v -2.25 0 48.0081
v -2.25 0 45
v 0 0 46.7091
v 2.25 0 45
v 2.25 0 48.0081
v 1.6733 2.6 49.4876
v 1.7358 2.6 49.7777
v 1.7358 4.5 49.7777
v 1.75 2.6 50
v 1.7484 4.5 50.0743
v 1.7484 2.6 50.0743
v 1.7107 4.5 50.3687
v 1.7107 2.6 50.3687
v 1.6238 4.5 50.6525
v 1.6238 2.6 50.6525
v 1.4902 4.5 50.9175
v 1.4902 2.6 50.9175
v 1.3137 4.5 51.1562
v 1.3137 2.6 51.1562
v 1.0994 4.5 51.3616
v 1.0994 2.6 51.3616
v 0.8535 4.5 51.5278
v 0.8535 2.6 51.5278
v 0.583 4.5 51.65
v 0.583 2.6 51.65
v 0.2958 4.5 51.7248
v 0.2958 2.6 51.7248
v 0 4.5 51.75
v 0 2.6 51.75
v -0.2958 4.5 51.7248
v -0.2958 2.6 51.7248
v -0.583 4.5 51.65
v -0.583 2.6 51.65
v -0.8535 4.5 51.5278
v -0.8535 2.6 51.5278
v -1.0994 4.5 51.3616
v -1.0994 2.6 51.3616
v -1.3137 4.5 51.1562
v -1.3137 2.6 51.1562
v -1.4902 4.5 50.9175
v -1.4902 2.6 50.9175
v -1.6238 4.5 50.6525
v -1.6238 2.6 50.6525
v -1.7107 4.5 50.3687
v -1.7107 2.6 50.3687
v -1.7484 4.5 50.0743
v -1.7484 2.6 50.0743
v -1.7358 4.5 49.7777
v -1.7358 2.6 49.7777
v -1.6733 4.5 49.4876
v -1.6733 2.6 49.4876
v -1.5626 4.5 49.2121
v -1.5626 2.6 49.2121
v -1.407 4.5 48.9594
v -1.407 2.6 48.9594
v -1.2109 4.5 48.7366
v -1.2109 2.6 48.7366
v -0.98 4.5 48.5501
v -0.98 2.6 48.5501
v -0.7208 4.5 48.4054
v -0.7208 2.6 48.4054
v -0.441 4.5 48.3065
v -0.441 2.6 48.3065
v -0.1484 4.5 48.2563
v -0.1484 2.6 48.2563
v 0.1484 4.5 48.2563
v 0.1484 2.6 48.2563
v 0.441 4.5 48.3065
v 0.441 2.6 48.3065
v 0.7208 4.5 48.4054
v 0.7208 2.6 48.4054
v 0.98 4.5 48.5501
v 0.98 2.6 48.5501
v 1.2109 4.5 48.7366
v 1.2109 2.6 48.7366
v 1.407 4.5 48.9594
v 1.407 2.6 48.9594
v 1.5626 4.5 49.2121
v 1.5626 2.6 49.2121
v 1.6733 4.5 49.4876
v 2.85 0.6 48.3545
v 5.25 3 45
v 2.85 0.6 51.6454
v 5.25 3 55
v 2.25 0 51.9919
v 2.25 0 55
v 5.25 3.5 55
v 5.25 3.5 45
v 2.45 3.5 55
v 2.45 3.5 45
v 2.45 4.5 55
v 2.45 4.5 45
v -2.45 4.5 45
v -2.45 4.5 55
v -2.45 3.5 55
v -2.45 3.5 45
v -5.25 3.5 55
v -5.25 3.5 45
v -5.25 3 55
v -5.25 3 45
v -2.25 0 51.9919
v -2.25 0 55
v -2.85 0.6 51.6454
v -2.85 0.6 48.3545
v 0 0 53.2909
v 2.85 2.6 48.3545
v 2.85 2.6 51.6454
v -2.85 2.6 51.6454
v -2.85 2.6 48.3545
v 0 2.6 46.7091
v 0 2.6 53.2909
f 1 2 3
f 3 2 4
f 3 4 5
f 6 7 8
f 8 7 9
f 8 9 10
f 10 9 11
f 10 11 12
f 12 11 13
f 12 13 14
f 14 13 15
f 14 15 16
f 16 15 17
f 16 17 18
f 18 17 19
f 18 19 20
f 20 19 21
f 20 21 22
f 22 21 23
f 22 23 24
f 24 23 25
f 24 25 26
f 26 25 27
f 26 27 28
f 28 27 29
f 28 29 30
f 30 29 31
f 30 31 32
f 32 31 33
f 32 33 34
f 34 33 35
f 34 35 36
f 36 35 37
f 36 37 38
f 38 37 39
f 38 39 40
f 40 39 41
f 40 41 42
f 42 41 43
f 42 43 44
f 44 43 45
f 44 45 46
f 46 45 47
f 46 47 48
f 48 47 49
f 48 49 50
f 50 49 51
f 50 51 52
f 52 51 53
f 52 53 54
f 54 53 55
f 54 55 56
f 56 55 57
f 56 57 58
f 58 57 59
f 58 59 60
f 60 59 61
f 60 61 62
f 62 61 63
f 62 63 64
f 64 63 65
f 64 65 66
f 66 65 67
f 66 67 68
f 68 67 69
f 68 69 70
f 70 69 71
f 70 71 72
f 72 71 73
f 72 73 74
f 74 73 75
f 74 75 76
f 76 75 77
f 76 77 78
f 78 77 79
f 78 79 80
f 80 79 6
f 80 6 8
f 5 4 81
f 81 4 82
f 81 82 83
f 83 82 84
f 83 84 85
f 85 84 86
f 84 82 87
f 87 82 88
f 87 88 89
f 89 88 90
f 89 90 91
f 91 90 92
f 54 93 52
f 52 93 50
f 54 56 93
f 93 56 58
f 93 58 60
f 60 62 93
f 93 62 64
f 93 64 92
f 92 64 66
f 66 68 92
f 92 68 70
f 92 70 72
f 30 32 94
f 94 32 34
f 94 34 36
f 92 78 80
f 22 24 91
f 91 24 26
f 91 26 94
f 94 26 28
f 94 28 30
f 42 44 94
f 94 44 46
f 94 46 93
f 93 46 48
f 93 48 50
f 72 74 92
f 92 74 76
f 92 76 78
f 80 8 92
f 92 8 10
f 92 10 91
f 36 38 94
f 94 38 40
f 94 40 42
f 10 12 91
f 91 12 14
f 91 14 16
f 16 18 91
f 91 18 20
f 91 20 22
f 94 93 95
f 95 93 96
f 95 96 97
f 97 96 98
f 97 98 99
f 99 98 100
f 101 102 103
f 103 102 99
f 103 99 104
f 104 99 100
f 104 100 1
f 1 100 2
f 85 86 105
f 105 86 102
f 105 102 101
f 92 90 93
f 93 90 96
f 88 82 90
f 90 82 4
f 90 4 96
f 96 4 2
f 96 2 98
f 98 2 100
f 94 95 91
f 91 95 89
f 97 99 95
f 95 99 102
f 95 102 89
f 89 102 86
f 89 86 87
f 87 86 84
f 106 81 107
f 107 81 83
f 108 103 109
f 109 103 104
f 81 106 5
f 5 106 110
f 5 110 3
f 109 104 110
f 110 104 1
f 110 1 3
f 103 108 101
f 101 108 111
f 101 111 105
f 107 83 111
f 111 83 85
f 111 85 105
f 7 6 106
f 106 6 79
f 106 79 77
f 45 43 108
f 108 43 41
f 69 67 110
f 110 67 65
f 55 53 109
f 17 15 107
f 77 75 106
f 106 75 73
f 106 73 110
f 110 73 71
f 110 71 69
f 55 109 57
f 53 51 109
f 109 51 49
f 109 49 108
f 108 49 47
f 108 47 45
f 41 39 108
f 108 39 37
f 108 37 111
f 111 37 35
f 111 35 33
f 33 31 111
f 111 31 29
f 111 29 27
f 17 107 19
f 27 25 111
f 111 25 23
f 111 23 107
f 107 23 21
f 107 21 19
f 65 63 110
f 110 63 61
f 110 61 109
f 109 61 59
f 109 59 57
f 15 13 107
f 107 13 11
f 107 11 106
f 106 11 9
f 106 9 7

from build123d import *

# Parameters (mm, degrees)
BOSS_EXTRU_1_DEPTH           = 100
ESQUISSE2_R                  = 1.75
ENL_V_MAT_EXTRU_1_DEPTH      = 101.238777427
ENL_V_MAT_EXTRU_2_DEPTH      = 101.238777427
ENL_V_MAT_EXTRU_2_DEPTH_BACK = 101.238777427
ESQUISSE3_W                  = 10.5
ESQUISSE3_H                  = 45
ENL_V_MAT_EXTRU_3_DEPTH      = 2.6


with BuildPart() as part:
    # Esquisse1 → Boss.-Extru.1 (new body)
    with BuildSketch(Plane.XY):
        Polygon((-2.25, 0), (2.25, 0), (5.25, 3), (5.25, 3.5), (2.45, 3.5), (2.45, 4.5), (-2.45, 4.5), (-2.45, 3.5), (-5.25, 3.5), (-5.25, 3), align=None)
    extrude(amount=BOSS_EXTRU_1_DEPTH)

    # Esquisse2 → Enlèv. mat.-Extru.1 (cut, through all)
    with BuildSketch(Plane(origin=(0, 4.5, 0), x_dir=(1, 0, 0), z_dir=(0, 1, 0))):
        with Locations(Location((0, -50, 0), (0, 0, 270))):
            Circle(ESQUISSE2_R)
    extrude(amount=-ENL_V_MAT_EXTRU_1_DEPTH, mode=Mode.SUBTRACT)

    # Esquisse3 → Enlèv. mat.-Extru.2 (cut, two sides: drawn at the far end of the back side and taken through both)
    with BuildSketch(Plane(origin=(0, 4.5, 0), x_dir=(1, 0, 0), z_dir=(0, 1, 0)).offset(-ENL_V_MAT_EXTRU_2_DEPTH_BACK)):
        with Locations((0, -77.5)):
            Rectangle(ESQUISSE3_W, ESQUISSE3_H)
        with Locations((0, -22.5)):
            Rectangle(ESQUISSE3_W, ESQUISSE3_H)
    extrude(amount=ENL_V_MAT_EXTRU_2_DEPTH + ENL_V_MAT_EXTRU_2_DEPTH_BACK, mode=Mode.SUBTRACT)

    # Esquisse4 → Enlèv. mat.-Extru.3 (cut)
    with BuildSketch(Plane.XZ):
        Polygon((2.85, 48.354551733), (2.85, 51.645448267), (0, 53.290896534), (-2.85, 51.645448267), (-2.85, 48.354551733), (0, 46.709103466), align=None)
    extrude(amount=-ENL_V_MAT_EXTRU_3_DEPTH, mode=Mode.SUBTRACT)


solid = part.part
